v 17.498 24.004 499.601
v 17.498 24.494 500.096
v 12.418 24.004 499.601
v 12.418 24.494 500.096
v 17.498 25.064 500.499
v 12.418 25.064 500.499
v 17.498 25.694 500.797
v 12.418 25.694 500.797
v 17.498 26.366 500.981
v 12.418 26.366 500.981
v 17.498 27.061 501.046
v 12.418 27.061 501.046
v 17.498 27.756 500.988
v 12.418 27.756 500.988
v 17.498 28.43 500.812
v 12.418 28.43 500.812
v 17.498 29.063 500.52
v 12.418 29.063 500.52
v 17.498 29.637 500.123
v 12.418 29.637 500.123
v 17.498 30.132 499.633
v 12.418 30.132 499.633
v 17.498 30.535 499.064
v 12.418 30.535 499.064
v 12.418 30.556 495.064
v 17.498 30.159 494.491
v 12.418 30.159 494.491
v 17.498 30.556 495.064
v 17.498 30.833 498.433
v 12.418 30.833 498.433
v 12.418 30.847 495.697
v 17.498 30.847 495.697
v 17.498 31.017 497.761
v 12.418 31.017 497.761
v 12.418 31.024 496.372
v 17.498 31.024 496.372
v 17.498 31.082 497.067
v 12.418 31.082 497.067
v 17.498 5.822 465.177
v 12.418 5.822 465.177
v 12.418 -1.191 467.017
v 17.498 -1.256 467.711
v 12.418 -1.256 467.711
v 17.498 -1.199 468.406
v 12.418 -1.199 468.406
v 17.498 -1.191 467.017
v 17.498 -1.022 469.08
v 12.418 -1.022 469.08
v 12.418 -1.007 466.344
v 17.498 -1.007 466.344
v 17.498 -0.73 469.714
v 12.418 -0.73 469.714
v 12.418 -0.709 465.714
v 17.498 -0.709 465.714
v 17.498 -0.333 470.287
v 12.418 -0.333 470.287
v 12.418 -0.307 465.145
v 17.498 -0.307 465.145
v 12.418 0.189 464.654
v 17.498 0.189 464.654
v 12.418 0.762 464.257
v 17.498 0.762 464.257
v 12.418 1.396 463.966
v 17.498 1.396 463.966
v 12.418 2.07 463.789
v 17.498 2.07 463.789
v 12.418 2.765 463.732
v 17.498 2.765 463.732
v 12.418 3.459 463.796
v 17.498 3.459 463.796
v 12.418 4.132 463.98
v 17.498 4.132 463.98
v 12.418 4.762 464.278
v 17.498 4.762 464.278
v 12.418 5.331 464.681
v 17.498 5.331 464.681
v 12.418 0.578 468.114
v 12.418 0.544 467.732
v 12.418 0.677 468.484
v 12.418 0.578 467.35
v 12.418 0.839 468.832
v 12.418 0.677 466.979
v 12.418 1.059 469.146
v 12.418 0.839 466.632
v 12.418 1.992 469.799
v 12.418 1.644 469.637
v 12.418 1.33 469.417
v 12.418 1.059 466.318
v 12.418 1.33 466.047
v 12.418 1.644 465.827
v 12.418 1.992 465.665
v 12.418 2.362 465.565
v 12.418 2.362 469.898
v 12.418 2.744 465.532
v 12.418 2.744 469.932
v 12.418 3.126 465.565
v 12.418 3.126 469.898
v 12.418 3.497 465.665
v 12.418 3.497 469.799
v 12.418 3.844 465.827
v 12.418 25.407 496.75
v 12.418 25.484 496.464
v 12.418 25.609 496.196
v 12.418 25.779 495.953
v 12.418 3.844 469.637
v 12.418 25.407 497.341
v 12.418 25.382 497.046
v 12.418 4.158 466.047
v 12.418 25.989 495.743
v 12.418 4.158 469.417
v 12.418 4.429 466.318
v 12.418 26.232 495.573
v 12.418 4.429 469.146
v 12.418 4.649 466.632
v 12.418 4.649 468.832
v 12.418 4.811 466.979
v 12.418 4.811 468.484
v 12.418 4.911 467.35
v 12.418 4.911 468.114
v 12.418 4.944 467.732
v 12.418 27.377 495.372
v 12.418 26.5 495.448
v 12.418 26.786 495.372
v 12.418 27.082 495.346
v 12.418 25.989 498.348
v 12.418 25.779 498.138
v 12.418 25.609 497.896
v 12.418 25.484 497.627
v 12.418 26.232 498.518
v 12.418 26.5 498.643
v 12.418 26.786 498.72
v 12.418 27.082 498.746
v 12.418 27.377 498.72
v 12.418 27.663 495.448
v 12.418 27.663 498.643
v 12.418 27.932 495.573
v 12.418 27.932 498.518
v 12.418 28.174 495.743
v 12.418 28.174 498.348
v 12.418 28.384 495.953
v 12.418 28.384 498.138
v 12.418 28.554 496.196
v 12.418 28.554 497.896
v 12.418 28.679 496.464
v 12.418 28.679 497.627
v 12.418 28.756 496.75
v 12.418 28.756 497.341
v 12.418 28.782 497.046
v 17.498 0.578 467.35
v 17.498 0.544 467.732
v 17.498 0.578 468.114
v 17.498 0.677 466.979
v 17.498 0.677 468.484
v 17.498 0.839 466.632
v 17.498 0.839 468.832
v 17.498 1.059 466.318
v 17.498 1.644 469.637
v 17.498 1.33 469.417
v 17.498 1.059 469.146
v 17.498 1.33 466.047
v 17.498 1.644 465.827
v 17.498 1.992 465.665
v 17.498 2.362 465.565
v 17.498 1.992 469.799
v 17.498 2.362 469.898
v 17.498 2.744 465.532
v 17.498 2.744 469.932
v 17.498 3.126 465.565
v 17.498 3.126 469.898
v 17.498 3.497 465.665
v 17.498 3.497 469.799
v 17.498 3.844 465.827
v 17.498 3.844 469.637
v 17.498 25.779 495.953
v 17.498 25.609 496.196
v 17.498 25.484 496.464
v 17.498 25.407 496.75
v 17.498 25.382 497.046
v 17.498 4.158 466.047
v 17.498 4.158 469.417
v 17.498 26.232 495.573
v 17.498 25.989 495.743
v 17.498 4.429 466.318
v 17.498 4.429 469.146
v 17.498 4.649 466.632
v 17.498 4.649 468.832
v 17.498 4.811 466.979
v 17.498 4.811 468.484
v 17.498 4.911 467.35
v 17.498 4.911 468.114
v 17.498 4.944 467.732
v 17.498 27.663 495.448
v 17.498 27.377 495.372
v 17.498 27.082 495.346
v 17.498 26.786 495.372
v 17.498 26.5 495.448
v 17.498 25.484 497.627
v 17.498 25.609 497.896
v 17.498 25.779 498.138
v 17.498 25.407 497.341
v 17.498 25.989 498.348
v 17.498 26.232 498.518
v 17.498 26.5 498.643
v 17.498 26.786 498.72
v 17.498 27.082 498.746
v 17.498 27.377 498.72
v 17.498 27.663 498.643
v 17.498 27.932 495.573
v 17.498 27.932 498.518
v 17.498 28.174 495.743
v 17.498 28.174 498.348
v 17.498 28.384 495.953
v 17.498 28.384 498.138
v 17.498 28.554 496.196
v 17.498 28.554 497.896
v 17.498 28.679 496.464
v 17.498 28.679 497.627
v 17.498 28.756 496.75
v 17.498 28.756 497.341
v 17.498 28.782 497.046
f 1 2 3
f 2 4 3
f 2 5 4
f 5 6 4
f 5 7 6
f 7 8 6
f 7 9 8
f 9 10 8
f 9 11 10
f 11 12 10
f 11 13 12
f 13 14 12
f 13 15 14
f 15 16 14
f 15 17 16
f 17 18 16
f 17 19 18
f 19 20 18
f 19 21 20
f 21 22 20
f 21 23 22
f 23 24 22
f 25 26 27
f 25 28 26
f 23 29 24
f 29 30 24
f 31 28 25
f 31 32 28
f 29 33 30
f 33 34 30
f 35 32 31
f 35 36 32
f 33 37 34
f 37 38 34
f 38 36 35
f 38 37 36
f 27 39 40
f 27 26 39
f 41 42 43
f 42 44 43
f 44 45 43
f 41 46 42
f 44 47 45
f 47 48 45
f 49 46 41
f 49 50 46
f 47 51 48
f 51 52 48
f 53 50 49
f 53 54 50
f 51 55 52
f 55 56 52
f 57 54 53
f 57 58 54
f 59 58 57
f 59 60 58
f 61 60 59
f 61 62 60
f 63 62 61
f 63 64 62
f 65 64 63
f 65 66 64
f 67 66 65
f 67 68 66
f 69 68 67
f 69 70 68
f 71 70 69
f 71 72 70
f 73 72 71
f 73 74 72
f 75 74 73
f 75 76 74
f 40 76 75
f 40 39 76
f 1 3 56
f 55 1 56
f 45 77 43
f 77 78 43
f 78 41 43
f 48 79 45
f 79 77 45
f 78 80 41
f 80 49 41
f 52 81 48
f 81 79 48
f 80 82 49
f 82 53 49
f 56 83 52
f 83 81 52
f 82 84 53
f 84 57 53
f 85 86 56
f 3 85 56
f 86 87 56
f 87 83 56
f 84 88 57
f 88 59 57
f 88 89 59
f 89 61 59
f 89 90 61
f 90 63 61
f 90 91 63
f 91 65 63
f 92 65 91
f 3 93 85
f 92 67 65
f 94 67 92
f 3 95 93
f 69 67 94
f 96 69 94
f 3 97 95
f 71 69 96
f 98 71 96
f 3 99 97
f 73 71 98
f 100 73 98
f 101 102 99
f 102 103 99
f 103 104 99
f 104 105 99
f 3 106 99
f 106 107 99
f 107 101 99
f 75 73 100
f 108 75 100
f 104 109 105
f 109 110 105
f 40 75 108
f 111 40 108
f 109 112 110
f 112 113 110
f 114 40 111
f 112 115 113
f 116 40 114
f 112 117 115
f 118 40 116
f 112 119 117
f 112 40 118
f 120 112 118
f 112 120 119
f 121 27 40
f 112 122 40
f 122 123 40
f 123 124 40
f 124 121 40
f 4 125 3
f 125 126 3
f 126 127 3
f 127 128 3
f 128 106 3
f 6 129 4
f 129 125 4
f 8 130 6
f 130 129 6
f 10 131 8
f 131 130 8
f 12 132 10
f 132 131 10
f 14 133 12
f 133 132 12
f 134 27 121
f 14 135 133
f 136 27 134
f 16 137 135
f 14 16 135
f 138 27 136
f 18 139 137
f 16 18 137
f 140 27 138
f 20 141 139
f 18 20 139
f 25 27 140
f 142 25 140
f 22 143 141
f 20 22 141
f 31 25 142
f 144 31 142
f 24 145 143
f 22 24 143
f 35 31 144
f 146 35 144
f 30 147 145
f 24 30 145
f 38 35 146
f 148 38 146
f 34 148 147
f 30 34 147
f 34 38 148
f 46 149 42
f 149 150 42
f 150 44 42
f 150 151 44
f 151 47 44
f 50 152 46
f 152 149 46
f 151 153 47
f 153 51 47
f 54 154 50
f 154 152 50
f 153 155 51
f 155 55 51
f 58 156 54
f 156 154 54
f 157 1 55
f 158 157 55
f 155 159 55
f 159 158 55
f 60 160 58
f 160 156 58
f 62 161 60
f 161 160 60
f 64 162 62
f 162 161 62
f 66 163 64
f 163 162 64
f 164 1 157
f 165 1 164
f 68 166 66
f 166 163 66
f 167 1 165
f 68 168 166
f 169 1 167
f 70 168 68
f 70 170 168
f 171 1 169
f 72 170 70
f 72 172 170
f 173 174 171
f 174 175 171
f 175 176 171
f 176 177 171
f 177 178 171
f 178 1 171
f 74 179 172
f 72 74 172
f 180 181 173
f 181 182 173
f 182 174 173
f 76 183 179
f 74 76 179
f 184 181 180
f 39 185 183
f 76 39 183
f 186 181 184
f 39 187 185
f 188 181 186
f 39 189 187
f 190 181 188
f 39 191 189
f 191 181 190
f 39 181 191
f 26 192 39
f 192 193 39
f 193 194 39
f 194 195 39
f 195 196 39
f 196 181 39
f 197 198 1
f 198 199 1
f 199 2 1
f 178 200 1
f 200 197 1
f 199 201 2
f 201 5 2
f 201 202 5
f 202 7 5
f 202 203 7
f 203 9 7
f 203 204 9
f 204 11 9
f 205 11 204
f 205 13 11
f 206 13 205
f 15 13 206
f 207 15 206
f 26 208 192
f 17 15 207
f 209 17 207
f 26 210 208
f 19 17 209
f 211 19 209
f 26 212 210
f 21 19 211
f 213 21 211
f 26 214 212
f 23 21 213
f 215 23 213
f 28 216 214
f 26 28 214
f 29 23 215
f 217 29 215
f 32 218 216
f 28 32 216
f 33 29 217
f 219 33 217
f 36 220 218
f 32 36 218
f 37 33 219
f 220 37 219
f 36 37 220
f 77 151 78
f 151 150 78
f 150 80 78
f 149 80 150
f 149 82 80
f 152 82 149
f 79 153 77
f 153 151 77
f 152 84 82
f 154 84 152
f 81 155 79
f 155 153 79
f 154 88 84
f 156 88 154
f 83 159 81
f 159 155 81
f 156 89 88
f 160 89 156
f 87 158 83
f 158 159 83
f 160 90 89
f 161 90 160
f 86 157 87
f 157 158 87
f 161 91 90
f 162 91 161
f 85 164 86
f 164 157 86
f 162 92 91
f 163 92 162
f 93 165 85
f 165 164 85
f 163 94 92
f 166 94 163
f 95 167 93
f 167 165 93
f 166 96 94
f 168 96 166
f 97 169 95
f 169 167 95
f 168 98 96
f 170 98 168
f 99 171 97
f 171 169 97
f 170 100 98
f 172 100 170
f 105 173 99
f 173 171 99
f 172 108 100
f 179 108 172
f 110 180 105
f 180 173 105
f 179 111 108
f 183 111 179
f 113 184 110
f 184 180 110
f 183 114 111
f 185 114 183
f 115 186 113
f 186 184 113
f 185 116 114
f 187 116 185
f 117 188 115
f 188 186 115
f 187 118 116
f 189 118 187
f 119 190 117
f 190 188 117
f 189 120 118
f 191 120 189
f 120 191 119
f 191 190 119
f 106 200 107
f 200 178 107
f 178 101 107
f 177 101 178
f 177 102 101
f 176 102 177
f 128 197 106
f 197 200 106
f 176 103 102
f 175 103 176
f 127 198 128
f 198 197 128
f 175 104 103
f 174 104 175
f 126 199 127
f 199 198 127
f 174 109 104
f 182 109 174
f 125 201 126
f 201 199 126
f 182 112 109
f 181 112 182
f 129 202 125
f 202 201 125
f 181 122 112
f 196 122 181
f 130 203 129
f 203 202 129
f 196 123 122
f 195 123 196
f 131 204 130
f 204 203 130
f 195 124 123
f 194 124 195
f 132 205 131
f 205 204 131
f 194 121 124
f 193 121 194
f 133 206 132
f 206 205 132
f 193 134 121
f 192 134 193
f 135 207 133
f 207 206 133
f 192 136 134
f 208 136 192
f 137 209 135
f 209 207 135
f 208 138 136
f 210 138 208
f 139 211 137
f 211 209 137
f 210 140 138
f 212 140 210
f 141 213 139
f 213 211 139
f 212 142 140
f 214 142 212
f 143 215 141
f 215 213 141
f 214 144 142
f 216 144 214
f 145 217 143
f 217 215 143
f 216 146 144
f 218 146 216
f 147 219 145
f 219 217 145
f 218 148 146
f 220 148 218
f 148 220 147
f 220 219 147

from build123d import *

# Parameters (mm, degrees)
SKETCH1_R           = 2.2
SKETCH1_R_2         = 1.7
BOSS_EXTRUDE1_DEPTH = 5.08


with BuildPart() as part:
    # Sketch1 → Boss-Extrude1 (new body)
    with BuildSketch(Plane(origin=(17.497777778, 0, 0), x_dir=(0, 0, -1), z_dir=(1, 0, 0))):
        with BuildLine():
            Line((-499.600738517, 24.004018568), (-470.286926412, -0.333409807))
            ThreePointArc((-470.286926412, -0.333409807), (-464.654250247, 0.189045178), (-465.176705231, 5.821721344))
            Line((-465.176705231, 5.821721344), (-494.490517336, 30.159149718))
            ThreePointArc((-494.490517336, 30.159149718), (-500.123193502, 29.636694733), (-499.600738517, 24.004018568))
        make_face()
        with Locations((-467.731815822, 2.744155769)):
            Circle(SKETCH1_R, mode=Mode.SUBTRACT)
        with Locations((-497.045627927, 27.081584143)):
            Circle(SKETCH1_R_2, mode=Mode.SUBTRACT)
    extrude(amount=-BOSS_EXTRUDE1_DEPTH)


solid = part.part
